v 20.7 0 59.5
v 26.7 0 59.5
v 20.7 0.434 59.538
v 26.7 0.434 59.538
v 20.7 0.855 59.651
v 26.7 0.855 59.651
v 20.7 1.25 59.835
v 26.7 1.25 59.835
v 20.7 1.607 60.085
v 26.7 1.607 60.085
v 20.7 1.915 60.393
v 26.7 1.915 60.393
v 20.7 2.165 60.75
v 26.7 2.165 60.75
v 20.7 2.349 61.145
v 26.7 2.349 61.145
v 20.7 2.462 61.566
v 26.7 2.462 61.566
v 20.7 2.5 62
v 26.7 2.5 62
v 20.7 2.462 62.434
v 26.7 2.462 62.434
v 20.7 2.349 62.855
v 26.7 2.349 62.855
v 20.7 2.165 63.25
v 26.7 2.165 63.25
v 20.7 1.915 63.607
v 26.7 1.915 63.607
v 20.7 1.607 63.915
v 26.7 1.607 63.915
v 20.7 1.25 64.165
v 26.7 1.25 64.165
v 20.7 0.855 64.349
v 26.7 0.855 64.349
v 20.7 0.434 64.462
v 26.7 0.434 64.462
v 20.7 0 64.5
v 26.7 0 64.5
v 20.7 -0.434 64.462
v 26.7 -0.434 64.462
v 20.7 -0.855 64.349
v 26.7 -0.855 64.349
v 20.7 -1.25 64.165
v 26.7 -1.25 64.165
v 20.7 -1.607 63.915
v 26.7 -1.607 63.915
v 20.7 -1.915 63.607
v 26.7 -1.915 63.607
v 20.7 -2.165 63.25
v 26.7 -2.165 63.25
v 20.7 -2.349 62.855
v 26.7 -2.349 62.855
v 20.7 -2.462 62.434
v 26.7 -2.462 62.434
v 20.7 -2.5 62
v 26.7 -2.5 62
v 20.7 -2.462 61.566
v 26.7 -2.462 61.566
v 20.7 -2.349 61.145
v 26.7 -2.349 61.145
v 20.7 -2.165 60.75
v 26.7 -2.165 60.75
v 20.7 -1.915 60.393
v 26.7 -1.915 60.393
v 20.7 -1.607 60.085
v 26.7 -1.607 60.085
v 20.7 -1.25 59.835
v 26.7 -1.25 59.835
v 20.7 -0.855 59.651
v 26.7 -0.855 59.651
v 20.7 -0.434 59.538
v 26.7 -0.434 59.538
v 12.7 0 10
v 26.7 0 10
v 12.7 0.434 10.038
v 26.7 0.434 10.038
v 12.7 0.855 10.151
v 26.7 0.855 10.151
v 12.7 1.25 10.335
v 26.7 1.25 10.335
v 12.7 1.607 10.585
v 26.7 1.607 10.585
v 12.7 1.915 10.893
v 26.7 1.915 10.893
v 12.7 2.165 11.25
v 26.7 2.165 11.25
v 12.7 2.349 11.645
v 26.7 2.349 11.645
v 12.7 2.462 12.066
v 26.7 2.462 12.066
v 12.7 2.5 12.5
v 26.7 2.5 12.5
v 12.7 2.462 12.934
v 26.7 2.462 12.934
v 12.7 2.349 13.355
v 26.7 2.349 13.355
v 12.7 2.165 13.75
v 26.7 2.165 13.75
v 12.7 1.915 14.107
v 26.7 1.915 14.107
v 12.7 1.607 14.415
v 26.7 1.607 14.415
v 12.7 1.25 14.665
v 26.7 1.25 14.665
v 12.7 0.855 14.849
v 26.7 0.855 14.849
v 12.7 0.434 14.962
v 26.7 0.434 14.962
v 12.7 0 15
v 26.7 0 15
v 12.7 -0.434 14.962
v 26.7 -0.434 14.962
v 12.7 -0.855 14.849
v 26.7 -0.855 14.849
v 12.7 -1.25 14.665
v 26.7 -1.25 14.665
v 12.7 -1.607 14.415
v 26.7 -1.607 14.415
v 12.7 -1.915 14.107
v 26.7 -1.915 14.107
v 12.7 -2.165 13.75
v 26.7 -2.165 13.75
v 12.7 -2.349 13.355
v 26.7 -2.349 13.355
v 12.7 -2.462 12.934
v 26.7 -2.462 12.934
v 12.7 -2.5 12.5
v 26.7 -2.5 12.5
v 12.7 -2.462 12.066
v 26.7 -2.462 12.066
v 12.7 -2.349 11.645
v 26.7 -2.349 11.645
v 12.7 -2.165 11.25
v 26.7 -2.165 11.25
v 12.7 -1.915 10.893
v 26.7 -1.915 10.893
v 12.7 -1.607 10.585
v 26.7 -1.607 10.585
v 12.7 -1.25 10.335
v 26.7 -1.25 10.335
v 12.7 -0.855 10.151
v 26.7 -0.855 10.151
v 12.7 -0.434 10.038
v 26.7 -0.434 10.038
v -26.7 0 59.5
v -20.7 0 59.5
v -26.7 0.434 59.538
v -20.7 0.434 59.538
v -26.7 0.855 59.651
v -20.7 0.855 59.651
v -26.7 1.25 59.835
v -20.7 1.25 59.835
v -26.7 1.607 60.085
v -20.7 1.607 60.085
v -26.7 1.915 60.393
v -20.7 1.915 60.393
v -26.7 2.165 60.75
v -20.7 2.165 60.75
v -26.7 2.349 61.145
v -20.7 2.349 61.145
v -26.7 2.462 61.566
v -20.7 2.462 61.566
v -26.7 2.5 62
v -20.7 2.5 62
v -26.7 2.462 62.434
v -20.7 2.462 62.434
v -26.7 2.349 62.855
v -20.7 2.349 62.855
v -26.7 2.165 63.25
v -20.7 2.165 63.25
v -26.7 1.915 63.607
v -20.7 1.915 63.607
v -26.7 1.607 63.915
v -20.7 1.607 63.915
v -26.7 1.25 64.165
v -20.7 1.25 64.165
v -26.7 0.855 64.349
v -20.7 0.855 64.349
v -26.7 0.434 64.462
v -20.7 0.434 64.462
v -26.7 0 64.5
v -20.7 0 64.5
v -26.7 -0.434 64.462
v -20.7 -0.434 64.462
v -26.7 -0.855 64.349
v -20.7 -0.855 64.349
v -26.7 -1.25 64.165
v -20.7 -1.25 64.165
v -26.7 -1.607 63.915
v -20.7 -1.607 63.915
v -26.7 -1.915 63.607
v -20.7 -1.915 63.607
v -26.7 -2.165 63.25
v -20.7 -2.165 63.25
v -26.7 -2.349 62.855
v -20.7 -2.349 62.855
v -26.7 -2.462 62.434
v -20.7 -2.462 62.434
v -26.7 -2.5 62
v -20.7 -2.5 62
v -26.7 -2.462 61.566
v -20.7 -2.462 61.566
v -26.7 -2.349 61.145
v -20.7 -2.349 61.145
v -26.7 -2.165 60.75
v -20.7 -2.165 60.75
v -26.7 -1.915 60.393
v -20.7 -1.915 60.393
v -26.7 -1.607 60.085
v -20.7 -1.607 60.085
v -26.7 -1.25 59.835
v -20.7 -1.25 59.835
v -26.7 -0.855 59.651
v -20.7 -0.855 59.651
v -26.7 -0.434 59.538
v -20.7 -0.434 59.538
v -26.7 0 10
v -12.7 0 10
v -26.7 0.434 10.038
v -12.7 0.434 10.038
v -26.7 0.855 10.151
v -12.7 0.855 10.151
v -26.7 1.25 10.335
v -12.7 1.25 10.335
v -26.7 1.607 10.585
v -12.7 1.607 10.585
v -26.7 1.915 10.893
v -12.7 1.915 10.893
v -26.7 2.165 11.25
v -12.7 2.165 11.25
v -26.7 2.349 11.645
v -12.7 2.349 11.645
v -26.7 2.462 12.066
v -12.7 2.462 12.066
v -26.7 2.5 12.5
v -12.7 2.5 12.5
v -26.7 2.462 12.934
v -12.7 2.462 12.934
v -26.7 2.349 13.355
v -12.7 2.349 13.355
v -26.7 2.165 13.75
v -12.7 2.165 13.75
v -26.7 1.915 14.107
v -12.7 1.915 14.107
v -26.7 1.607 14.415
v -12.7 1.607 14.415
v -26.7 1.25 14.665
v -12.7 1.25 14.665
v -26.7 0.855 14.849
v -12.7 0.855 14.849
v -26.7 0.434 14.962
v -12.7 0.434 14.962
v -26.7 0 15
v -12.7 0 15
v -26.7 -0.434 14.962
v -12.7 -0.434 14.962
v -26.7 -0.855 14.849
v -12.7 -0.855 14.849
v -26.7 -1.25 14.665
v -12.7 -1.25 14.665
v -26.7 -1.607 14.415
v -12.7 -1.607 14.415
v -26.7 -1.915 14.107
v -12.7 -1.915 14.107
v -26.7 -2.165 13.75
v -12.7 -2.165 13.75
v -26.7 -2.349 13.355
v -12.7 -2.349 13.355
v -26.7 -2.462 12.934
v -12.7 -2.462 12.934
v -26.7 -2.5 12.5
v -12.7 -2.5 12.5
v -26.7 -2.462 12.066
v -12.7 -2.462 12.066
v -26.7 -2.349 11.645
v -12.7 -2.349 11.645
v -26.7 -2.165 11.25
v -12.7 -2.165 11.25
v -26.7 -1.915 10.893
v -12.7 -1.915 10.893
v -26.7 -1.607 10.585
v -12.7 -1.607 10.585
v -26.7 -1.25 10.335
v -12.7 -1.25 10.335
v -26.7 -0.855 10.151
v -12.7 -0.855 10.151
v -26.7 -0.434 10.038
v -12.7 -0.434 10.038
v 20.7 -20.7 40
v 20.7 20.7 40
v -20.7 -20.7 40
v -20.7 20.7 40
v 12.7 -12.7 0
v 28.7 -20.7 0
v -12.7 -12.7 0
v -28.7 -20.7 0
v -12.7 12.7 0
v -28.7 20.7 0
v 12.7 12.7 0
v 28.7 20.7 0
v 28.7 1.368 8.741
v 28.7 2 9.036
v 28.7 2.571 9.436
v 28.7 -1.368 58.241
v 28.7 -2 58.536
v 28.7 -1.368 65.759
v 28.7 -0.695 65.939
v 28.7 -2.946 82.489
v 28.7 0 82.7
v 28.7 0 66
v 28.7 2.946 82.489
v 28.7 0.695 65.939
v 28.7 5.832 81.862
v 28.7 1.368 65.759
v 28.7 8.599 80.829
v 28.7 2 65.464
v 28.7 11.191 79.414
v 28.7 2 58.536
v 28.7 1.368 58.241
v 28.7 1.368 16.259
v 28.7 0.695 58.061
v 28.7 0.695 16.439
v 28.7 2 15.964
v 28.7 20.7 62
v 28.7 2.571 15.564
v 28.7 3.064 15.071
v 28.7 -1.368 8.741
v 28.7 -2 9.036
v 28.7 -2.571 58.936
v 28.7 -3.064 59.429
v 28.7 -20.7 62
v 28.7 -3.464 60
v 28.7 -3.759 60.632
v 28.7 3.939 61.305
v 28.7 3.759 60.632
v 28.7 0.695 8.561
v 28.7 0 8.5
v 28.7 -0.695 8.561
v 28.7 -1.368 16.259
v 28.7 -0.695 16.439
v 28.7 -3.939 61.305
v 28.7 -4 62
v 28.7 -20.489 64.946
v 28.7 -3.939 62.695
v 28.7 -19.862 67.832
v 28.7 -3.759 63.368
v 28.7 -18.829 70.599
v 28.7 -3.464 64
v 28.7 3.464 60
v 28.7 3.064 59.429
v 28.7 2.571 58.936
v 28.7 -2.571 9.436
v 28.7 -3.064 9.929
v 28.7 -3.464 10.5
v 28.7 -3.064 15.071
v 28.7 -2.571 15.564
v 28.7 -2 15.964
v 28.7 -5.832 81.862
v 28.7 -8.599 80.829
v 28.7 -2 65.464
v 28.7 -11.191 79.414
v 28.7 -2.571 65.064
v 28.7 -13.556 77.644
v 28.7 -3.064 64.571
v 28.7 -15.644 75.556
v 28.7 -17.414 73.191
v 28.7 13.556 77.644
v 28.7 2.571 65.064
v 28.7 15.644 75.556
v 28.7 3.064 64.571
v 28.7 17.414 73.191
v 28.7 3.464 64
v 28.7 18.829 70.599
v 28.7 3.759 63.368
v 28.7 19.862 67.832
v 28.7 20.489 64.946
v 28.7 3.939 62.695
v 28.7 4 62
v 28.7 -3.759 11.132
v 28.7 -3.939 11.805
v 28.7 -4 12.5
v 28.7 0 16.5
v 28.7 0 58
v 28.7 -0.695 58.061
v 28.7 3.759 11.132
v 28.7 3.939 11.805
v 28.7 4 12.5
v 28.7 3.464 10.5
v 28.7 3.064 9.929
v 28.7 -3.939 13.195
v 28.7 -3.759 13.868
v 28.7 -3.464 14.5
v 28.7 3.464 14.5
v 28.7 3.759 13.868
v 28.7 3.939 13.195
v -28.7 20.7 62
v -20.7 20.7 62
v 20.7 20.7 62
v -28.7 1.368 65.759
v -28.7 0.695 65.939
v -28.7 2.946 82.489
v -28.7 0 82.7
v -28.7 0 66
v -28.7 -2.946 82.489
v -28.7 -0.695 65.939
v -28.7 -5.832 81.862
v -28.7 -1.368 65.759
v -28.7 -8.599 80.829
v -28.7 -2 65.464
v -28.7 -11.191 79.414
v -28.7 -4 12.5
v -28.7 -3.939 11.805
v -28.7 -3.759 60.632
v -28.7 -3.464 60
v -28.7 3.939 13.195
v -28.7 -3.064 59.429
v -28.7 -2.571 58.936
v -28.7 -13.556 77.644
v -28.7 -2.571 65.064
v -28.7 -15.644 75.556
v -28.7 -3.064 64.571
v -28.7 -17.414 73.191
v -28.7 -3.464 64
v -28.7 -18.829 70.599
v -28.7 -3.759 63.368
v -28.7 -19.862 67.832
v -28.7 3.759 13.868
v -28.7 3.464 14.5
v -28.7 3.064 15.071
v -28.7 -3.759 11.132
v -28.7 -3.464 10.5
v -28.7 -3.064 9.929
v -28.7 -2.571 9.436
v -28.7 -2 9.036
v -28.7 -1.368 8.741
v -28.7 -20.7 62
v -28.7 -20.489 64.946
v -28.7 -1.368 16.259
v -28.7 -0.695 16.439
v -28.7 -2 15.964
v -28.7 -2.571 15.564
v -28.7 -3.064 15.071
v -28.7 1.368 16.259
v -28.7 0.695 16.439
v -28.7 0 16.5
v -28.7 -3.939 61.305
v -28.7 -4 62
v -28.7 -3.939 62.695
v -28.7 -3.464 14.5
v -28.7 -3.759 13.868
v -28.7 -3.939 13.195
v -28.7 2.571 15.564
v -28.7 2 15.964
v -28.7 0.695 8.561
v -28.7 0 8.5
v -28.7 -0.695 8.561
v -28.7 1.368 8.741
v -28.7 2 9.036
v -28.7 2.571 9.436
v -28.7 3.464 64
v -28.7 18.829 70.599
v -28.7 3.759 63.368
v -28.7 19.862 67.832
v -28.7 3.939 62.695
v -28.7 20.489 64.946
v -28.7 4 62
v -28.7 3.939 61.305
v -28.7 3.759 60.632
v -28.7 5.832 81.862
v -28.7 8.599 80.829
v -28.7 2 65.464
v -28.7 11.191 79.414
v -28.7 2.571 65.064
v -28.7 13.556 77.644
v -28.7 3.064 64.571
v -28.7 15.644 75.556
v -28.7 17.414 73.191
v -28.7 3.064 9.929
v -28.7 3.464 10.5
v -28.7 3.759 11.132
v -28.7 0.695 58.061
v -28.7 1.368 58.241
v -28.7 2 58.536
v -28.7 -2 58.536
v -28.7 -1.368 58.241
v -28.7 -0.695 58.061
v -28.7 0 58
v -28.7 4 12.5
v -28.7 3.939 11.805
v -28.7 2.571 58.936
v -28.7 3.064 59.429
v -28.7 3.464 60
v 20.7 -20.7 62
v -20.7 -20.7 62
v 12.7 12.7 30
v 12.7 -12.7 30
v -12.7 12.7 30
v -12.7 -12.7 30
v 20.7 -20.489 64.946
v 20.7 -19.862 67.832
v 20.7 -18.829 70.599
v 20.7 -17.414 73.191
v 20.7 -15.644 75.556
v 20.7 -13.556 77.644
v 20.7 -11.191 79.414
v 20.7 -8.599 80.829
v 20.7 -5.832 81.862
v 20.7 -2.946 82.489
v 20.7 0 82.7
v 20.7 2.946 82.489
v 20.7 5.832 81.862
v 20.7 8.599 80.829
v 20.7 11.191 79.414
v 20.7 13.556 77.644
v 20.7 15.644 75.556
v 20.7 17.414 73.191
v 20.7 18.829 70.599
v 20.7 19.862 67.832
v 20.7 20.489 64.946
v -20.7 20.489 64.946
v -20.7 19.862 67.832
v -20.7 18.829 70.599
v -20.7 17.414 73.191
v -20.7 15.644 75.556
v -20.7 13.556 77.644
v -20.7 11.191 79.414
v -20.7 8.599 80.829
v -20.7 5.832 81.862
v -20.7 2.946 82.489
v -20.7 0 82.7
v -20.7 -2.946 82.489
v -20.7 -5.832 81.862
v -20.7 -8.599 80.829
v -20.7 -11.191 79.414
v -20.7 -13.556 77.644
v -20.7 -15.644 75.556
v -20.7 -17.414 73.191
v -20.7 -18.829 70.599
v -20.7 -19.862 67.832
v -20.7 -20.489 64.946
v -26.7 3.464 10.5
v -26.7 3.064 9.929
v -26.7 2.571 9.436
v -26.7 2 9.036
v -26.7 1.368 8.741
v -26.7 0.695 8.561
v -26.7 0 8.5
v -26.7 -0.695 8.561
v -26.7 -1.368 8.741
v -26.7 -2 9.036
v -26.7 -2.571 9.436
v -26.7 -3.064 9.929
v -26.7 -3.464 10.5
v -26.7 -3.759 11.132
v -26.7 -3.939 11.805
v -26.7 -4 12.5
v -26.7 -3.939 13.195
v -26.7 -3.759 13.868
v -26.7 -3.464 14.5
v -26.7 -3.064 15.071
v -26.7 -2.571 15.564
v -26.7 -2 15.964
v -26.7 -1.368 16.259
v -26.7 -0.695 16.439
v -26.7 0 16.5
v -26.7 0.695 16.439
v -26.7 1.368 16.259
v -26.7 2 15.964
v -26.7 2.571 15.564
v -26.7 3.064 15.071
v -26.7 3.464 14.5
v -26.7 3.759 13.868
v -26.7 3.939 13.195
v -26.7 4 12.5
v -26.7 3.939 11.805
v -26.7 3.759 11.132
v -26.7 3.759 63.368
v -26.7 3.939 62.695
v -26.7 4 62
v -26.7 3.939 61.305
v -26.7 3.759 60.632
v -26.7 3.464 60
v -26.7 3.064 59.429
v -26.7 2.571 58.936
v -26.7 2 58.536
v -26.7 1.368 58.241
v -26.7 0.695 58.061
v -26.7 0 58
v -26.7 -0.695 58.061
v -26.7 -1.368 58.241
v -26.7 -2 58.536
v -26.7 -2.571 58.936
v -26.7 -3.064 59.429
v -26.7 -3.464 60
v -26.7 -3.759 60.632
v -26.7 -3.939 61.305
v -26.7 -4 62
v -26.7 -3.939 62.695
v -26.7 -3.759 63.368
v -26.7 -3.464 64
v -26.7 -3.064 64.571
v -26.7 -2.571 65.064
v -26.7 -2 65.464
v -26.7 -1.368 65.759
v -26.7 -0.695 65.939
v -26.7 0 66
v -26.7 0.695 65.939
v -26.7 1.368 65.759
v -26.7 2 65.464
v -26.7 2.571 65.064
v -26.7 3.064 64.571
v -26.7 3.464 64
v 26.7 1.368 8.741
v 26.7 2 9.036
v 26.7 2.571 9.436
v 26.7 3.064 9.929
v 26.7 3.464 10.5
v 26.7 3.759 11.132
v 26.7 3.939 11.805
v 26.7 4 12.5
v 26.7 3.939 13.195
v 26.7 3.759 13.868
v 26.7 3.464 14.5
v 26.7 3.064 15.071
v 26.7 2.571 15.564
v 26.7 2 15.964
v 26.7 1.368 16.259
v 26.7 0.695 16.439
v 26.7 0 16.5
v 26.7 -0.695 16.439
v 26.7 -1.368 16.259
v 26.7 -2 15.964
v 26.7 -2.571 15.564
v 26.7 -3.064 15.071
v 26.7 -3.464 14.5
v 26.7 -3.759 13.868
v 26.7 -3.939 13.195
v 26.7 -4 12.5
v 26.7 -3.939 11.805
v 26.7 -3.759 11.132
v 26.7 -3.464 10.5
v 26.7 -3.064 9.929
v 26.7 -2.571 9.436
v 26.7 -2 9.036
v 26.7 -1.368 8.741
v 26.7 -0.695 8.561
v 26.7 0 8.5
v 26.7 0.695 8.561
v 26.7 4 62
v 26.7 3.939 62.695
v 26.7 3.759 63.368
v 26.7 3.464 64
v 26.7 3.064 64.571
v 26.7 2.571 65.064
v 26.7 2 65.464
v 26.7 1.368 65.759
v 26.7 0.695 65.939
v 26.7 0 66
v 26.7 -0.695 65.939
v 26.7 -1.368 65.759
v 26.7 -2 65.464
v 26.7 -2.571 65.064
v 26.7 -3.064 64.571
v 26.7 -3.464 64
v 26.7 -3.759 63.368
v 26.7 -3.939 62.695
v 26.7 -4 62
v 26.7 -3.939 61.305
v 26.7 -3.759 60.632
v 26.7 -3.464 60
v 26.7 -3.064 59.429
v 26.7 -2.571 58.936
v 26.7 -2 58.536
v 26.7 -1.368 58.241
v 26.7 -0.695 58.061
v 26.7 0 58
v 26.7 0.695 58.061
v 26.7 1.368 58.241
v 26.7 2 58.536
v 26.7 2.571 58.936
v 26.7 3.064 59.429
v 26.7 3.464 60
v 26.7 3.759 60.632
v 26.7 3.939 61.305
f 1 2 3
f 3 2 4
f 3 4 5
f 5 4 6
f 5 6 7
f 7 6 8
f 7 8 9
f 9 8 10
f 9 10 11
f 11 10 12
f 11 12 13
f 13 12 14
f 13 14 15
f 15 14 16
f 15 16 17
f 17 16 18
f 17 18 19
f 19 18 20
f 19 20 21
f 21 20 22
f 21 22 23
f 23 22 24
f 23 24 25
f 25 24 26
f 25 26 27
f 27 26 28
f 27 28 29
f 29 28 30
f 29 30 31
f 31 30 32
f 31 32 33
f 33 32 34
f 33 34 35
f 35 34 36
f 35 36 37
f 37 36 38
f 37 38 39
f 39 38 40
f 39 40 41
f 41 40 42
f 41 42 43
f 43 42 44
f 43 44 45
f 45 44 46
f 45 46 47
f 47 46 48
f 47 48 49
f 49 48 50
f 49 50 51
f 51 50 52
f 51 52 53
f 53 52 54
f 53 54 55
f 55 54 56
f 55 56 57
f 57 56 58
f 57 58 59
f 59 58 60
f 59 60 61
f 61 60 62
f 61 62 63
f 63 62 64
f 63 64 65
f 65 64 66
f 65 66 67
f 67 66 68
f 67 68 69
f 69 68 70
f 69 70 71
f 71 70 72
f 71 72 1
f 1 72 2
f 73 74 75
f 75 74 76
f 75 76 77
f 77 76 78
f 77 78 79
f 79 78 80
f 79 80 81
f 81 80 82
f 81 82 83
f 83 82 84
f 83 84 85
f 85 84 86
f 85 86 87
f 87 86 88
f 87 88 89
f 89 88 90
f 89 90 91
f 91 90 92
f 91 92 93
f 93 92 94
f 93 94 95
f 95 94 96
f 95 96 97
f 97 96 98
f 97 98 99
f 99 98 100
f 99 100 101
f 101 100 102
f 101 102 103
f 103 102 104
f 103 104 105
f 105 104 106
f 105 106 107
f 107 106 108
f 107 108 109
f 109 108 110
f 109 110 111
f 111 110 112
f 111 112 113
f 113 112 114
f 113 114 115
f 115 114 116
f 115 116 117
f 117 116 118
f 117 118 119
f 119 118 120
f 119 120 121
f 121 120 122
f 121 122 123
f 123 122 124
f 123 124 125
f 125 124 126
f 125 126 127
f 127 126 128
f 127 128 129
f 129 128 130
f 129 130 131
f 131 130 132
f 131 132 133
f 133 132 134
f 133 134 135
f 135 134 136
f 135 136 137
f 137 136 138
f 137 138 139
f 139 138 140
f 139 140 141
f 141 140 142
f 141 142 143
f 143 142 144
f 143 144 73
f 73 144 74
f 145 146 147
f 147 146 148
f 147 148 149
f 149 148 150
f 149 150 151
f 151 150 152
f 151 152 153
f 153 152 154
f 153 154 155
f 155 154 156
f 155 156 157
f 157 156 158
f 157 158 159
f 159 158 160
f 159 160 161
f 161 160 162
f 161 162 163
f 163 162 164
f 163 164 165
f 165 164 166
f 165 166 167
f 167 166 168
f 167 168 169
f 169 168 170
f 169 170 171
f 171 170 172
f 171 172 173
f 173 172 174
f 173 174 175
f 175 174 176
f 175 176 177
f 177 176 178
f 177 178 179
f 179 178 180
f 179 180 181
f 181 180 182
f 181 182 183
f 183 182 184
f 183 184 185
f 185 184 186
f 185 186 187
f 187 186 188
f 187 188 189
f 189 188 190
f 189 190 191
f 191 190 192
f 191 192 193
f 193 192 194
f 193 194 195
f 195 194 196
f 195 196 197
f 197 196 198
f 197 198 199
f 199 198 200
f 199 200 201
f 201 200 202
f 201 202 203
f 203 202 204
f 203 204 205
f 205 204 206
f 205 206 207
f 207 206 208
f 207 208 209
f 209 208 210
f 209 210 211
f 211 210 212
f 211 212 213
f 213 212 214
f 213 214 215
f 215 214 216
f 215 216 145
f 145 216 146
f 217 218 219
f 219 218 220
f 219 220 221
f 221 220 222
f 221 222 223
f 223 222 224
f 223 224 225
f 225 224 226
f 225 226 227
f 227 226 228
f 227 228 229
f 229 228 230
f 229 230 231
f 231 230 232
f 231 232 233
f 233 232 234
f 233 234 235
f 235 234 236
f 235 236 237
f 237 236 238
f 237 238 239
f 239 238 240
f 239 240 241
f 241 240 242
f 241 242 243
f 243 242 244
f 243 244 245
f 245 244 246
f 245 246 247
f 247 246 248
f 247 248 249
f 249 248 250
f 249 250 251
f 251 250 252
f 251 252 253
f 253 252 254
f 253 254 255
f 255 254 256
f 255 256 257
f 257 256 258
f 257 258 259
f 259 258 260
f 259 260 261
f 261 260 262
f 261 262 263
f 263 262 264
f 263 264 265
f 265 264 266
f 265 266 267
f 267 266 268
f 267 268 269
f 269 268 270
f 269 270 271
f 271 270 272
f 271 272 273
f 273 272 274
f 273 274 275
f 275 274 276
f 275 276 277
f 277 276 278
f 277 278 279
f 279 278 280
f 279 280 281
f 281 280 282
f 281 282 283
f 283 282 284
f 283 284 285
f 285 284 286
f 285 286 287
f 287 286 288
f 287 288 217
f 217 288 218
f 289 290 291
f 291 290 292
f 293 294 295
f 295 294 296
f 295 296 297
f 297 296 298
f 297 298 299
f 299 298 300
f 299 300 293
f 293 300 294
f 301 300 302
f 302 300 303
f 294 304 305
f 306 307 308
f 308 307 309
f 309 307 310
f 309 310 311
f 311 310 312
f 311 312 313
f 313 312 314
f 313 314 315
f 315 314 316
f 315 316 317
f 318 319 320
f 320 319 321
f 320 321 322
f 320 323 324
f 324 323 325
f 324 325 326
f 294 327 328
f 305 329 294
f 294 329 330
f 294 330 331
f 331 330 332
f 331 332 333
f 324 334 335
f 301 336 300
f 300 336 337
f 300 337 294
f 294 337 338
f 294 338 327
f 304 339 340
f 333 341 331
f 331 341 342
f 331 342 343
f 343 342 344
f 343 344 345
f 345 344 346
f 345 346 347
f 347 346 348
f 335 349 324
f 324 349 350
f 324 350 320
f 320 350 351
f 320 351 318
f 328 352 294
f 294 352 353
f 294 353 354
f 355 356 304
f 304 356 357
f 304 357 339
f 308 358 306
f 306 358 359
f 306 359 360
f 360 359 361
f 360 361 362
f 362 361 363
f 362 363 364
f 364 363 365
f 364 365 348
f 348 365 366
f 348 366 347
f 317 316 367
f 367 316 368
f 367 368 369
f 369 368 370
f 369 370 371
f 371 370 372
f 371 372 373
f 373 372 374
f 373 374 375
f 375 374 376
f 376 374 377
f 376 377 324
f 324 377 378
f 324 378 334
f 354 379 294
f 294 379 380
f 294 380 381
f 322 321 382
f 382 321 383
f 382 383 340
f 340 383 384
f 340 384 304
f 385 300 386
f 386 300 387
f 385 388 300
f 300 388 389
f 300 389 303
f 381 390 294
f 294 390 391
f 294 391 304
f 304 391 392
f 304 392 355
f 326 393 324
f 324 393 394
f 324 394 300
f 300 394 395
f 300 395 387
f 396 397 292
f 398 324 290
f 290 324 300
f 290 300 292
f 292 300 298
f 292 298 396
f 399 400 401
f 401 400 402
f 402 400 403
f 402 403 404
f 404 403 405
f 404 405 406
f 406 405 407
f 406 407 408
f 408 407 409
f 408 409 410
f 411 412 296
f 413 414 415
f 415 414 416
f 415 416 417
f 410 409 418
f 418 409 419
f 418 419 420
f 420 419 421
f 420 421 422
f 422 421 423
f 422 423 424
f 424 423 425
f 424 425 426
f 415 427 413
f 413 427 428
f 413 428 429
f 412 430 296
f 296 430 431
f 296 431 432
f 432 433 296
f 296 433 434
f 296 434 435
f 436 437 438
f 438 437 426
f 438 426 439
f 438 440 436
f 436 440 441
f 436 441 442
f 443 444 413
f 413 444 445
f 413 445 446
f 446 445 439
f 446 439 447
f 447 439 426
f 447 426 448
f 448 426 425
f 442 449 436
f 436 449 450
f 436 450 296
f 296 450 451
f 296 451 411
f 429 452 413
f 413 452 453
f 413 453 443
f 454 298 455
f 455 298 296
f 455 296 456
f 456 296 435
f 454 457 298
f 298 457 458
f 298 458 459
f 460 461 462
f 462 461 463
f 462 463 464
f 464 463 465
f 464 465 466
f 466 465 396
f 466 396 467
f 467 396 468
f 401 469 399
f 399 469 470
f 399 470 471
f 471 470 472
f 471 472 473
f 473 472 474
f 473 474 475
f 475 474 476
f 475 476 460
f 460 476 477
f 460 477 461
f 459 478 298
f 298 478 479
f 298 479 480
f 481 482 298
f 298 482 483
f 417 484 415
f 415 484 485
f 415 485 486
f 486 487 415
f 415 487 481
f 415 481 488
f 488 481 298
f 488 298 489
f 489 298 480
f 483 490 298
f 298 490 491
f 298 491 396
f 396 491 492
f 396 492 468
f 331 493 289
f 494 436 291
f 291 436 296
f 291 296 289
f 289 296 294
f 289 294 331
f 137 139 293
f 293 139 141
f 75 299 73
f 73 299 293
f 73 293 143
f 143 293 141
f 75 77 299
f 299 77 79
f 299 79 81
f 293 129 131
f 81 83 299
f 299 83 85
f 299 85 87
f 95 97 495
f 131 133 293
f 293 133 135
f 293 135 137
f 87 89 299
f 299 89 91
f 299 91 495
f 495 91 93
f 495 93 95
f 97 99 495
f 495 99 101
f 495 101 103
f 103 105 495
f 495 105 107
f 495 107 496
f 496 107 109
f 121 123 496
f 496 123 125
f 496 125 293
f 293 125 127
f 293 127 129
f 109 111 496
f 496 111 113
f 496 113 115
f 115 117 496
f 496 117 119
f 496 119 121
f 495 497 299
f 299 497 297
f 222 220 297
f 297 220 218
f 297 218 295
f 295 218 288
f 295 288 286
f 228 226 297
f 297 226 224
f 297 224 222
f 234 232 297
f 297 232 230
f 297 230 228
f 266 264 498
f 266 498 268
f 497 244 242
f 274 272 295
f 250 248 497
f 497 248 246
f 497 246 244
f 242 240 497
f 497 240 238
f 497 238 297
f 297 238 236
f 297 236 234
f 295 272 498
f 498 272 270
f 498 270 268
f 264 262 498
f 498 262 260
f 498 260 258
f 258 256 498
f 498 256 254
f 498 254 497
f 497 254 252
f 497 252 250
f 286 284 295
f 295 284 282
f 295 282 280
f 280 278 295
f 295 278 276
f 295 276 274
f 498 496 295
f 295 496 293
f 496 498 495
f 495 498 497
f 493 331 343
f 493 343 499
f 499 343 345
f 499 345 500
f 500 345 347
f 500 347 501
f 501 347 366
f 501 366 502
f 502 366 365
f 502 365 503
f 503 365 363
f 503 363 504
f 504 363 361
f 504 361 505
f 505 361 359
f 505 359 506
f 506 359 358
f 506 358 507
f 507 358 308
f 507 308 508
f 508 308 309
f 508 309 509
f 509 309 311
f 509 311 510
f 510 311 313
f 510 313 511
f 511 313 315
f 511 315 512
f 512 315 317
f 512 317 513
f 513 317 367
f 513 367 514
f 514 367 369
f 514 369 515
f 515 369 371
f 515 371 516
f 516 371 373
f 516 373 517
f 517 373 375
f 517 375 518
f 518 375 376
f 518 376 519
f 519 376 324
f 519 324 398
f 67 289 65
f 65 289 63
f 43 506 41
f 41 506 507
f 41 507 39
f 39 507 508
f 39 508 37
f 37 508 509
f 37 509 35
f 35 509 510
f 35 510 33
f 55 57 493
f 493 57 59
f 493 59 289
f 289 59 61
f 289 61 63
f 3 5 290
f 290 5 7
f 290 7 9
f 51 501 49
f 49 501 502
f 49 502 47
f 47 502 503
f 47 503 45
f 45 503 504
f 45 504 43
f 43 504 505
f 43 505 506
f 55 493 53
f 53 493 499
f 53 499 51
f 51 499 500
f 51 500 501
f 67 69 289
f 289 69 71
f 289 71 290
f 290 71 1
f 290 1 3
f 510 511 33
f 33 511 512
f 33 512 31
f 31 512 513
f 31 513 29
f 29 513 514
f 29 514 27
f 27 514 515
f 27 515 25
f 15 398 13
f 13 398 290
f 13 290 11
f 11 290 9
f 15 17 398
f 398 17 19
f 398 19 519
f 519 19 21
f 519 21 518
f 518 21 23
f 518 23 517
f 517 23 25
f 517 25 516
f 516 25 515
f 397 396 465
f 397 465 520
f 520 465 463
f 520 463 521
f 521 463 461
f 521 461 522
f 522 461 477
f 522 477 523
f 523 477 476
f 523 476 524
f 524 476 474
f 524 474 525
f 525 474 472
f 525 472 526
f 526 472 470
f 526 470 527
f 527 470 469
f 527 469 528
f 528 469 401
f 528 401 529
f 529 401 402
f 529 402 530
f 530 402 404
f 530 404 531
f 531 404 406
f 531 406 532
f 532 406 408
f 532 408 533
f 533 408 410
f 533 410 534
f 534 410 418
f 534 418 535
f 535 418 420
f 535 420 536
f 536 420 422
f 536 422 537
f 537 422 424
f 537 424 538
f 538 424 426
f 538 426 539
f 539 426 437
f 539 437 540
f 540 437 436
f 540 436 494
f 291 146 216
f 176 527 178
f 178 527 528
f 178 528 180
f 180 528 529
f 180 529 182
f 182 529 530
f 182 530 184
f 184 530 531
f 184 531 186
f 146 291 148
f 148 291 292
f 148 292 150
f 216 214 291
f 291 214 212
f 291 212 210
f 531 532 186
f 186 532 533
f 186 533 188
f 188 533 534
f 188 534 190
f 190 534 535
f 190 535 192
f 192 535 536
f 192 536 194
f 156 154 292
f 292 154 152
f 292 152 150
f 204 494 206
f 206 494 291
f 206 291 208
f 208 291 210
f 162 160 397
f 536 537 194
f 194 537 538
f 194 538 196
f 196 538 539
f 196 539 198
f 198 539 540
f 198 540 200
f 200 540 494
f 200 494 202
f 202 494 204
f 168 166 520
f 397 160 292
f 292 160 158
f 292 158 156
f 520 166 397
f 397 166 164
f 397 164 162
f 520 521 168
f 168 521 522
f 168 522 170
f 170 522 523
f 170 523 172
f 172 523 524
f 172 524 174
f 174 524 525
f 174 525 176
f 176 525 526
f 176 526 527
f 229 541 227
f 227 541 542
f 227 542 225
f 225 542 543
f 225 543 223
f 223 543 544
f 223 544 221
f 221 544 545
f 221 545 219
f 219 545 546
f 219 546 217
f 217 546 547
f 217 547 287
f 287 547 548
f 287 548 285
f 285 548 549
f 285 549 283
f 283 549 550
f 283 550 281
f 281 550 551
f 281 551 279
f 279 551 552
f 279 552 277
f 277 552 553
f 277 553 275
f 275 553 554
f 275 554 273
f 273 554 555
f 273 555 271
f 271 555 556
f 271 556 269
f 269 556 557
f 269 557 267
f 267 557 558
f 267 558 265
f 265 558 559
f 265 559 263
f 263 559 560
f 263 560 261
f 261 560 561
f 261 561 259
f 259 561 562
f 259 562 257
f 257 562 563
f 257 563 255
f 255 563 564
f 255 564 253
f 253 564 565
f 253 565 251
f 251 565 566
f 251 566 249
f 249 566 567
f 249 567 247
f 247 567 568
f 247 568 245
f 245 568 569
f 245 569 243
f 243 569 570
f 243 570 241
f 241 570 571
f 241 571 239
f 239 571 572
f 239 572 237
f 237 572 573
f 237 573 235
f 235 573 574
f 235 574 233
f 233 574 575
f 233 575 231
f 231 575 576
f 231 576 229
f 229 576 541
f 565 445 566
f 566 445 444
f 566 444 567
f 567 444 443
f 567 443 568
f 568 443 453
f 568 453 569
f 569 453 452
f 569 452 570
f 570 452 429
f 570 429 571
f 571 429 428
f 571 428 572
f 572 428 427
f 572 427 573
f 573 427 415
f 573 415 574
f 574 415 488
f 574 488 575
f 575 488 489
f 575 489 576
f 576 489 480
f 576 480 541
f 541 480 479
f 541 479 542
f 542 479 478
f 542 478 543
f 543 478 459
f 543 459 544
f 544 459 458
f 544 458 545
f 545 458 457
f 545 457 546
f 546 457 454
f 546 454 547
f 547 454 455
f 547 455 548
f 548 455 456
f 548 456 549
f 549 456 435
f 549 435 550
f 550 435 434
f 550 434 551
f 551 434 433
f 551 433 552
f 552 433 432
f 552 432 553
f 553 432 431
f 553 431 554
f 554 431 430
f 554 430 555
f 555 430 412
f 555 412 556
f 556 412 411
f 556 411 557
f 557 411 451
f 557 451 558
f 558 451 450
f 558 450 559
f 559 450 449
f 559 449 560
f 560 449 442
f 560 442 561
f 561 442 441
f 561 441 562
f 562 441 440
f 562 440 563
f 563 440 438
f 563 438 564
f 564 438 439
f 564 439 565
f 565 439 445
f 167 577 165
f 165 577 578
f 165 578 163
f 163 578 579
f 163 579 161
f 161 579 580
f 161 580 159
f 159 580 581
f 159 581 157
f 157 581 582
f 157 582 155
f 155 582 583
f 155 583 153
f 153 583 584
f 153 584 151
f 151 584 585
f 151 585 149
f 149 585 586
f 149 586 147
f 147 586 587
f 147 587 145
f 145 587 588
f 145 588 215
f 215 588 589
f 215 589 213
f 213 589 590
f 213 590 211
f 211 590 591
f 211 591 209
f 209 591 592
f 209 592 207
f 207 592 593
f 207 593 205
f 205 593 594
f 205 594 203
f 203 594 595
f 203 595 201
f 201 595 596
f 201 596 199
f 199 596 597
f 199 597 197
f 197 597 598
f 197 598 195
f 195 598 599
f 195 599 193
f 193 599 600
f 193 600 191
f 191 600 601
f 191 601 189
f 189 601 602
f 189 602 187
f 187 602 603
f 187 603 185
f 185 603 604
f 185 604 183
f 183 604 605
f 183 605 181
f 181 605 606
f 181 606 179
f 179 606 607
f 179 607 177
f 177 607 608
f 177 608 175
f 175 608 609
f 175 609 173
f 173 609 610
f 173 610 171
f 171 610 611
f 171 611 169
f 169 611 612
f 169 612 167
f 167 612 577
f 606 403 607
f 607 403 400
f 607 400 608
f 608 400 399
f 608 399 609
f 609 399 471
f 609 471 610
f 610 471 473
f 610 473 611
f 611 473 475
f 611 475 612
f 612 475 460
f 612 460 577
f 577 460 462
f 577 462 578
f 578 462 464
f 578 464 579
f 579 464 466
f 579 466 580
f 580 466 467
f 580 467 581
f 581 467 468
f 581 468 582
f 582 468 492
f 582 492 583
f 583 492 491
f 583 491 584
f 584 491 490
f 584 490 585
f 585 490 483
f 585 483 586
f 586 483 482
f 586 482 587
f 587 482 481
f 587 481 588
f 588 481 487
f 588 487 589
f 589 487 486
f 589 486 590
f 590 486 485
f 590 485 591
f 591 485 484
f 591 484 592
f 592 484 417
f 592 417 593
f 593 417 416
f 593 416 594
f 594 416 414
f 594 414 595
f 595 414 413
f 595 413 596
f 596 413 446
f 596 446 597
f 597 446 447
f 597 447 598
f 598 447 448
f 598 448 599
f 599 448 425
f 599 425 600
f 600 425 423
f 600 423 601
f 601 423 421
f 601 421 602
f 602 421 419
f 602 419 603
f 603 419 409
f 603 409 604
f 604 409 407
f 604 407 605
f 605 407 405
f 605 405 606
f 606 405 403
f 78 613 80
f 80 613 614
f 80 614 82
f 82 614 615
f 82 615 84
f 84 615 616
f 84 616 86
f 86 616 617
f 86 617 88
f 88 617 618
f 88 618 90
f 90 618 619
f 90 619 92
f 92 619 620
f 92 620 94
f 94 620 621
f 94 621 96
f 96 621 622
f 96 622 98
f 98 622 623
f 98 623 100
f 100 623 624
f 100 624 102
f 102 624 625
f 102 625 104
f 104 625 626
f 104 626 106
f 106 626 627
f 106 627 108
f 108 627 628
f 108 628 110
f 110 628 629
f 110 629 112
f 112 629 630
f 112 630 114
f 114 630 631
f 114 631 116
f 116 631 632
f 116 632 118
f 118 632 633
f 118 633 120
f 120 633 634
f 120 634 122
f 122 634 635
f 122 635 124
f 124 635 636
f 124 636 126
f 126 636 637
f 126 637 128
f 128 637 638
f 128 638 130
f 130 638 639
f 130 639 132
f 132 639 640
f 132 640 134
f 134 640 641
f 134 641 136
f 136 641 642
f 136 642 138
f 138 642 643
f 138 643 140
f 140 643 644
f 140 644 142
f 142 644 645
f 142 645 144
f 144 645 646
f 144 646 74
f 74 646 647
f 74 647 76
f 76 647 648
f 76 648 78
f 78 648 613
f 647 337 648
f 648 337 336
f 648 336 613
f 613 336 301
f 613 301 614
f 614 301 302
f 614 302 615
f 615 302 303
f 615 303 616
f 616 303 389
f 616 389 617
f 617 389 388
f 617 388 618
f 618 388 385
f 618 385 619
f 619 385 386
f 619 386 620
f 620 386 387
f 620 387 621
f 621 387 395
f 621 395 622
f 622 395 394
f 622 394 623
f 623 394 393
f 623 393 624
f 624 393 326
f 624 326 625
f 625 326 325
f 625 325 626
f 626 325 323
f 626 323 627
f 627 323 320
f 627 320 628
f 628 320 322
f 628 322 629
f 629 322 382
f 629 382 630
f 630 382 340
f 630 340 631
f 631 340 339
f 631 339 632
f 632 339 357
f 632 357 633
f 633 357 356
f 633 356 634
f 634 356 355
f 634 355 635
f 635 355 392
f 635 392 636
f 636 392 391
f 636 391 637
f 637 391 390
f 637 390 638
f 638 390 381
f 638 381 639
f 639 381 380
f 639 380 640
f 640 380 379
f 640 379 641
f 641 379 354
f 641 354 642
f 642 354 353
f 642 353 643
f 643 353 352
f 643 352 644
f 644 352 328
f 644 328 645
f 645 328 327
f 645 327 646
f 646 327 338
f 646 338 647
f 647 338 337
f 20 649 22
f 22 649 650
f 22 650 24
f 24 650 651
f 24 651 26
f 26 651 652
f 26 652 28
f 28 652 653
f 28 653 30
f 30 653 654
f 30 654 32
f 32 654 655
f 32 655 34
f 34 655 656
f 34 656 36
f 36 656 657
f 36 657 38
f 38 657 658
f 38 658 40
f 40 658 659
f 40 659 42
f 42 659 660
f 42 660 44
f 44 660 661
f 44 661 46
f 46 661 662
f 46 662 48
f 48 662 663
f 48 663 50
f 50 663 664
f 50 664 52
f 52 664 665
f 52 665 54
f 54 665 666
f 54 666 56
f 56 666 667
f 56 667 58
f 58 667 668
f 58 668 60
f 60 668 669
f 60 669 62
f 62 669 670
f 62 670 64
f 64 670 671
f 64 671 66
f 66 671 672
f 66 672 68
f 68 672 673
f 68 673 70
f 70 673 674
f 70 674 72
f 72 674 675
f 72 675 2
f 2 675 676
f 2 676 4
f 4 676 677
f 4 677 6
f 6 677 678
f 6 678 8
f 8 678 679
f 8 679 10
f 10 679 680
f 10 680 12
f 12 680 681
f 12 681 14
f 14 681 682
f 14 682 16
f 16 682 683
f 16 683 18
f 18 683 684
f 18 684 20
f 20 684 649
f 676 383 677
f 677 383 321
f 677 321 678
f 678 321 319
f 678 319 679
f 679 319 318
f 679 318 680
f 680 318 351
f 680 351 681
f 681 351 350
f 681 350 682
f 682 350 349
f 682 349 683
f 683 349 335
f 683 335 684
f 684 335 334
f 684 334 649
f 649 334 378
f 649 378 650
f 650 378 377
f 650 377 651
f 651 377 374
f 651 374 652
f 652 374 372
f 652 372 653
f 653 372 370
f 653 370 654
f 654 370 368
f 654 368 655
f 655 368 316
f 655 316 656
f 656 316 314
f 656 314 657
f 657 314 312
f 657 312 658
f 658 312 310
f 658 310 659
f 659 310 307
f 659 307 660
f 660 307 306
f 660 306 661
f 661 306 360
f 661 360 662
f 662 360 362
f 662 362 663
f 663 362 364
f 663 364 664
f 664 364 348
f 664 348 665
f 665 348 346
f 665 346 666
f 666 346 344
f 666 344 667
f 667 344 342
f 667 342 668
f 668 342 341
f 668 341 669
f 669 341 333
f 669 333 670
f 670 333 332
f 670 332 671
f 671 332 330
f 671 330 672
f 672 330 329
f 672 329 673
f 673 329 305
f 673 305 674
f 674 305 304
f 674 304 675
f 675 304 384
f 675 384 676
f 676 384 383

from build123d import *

# Parameters (mm, degrees)
SKETCH1_W           = 57.4
SKETCH1_H           = 41.4
SKETCH1_W_2         = 25.4
SKETCH1_H_2         = 25.4
BOSS_EXTRUDE1_DEPTH = 30
SKETCH2_W           = 57.4
SKETCH2_H           = 41.4
BOSS_EXTRUDE2_DEPTH = 10
BOSS_EXTRUDE3_DEPTH = 8
BOSS_EXTRUDE4_START = -8
BOSS_EXTRUDE4_DEPTH = 8
CUT_EXTRUDE1_REACH  = 104.774
SKETCH6_R           = 2.5
CUT_EXTRUDE4_REACH  = 104.774
SKETCH9_R           = 2.5
SKETCH7_R           = 4
CUT_EXTRUDE2_DEPTH  = 2
CUT_EXTRUDE3_START  = -2
SKETCH8_R           = 4
CUT_EXTRUDE3_DEPTH  = 2


with BuildPart() as part:
    # Sketch1 → Boss-Extrude1 (new body)
    with BuildSketch(Plane.XY):
        Rectangle(SKETCH1_W, SKETCH1_H)
        Rectangle(SKETCH1_W_2, SKETCH1_H_2, mode=Mode.SUBTRACT)
    extrude(amount=BOSS_EXTRUDE1_DEPTH)

    # Sketch2 → Boss-Extrude2 (add)
    with BuildSketch(Plane.XY.offset(30)):
        Rectangle(SKETCH2_W, SKETCH2_H)
    extrude(amount=BOSS_EXTRUDE2_DEPTH)

    # Sketch4 → Boss-Extrude3 (add)
    with BuildSketch(Plane(origin=(28.7, 0, 0), x_dir=(0, 0, -1), z_dir=(1, 0, 0))):
        with BuildLine():
            Line((-40, -20.7), (-40, 20.7))
            Line((-40, 20.7), (-62, 20.7))
            ThreePointArc((-62, 20.7), (-82.7, 0), (-62, -20.7))
            Line((-62, -20.7), (-40, -20.7))
        make_face()
    extrude(amount=-BOSS_EXTRUDE3_DEPTH)

    # Sketch5 → Boss-Extrude4 (add)
    with BuildSketch(Plane.ZY.offset(28.7).offset(BOSS_EXTRUDE4_START)):
        with BuildLine():
            Line((40, 20.7), (40, -20.7))
            Line((40, -20.7), (62, -20.7))
            ThreePointArc((62, -20.7), (82.7, 0), (62, 20.7))
            Line((62, 20.7), (40, 20.7))
        make_face()
    extrude(amount=BOSS_EXTRUDE4_DEPTH)

    # Cut-Extrude1: up to this face of the body (flat: up to its plane)
    cut_extrude1_end = Plane(part.part.faces().sort_by_distance((-28.7, 0, 39.26525255))[0])
    # Sketch6 → Cut-Extrude1 (cut, up to the picked face)
    with BuildSketch(Plane(origin=(28.7, 0, 0), x_dir=(0, 0, -1), z_dir=(1, 0, 0)), mode=Mode.PRIVATE) as cut_extrude1_sk1:
        with Locations((-62, 0)):
            Circle(SKETCH6_R)
    cut_extrude1_tool1 = split(extrude(cut_extrude1_sk1.sketch, amount=-CUT_EXTRUDE1_REACH, mode=Mode.PRIVATE), bisect_by=cut_extrude1_end, keep=Keep.BOTH, mode=Mode.PRIVATE)
    add(cut_extrude1_tool1.solids().sort_by(Axis((28.7, 0, 62), (-1, 0, 0)))[0], mode=Mode.SUBTRACT)

    # Cut-Extrude4: up to this face of the body (flat: up to its plane)
    cut_extrude4_end = Plane(part.part.faces().sort_by_distance((-28.7, 0, 39.126630479))[0])
    # Sketch9 → Cut-Extrude4 (cut, up to the picked face)
    with BuildSketch(Plane(origin=(28.7, 0, 0), x_dir=(0, 0, -1), z_dir=(1, 0, 0)), mode=Mode.PRIVATE) as cut_extrude4_sk1:
        with Locations((-12.5, 0)):
            Circle(SKETCH9_R)
    cut_extrude4_tool1 = split(extrude(cut_extrude4_sk1.sketch, amount=-CUT_EXTRUDE4_REACH, mode=Mode.PRIVATE), bisect_by=cut_extrude4_end, keep=Keep.BOTH, mode=Mode.PRIVATE)
    add(cut_extrude4_tool1.solids().sort_by(Axis((28.7, 0, 12.5), (-1, 0, 0)))[0], mode=Mode.SUBTRACT)

    # Sketch7 → Cut-Extrude2 (cut)
    with BuildSketch(Plane.ZY.offset(28.7)):
        with Locations((62, 0)):
            Circle(SKETCH7_R)
        with Locations((12.5, 0)):
            Circle(SKETCH7_R)
    extrude(amount=-CUT_EXTRUDE2_DEPTH, mode=Mode.SUBTRACT)

    # Sketch8 → Cut-Extrude3 (cut)
    with BuildSketch(Plane(origin=(28.7, 0, 0), x_dir=(0, 0, -1), z_dir=(1, 0, 0)).offset(CUT_EXTRUDE3_START)):
        with Locations(Location((-62, 0, 0), (0, 0, 180))):
            Circle(SKETCH8_R)
        with Locations(Location((-12.5, 0, 0), (0, 0, 180))):
            Circle(SKETCH8_R)
    extrude(amount=CUT_EXTRUDE3_DEPTH, mode=Mode.SUBTRACT)


solid = part.part
